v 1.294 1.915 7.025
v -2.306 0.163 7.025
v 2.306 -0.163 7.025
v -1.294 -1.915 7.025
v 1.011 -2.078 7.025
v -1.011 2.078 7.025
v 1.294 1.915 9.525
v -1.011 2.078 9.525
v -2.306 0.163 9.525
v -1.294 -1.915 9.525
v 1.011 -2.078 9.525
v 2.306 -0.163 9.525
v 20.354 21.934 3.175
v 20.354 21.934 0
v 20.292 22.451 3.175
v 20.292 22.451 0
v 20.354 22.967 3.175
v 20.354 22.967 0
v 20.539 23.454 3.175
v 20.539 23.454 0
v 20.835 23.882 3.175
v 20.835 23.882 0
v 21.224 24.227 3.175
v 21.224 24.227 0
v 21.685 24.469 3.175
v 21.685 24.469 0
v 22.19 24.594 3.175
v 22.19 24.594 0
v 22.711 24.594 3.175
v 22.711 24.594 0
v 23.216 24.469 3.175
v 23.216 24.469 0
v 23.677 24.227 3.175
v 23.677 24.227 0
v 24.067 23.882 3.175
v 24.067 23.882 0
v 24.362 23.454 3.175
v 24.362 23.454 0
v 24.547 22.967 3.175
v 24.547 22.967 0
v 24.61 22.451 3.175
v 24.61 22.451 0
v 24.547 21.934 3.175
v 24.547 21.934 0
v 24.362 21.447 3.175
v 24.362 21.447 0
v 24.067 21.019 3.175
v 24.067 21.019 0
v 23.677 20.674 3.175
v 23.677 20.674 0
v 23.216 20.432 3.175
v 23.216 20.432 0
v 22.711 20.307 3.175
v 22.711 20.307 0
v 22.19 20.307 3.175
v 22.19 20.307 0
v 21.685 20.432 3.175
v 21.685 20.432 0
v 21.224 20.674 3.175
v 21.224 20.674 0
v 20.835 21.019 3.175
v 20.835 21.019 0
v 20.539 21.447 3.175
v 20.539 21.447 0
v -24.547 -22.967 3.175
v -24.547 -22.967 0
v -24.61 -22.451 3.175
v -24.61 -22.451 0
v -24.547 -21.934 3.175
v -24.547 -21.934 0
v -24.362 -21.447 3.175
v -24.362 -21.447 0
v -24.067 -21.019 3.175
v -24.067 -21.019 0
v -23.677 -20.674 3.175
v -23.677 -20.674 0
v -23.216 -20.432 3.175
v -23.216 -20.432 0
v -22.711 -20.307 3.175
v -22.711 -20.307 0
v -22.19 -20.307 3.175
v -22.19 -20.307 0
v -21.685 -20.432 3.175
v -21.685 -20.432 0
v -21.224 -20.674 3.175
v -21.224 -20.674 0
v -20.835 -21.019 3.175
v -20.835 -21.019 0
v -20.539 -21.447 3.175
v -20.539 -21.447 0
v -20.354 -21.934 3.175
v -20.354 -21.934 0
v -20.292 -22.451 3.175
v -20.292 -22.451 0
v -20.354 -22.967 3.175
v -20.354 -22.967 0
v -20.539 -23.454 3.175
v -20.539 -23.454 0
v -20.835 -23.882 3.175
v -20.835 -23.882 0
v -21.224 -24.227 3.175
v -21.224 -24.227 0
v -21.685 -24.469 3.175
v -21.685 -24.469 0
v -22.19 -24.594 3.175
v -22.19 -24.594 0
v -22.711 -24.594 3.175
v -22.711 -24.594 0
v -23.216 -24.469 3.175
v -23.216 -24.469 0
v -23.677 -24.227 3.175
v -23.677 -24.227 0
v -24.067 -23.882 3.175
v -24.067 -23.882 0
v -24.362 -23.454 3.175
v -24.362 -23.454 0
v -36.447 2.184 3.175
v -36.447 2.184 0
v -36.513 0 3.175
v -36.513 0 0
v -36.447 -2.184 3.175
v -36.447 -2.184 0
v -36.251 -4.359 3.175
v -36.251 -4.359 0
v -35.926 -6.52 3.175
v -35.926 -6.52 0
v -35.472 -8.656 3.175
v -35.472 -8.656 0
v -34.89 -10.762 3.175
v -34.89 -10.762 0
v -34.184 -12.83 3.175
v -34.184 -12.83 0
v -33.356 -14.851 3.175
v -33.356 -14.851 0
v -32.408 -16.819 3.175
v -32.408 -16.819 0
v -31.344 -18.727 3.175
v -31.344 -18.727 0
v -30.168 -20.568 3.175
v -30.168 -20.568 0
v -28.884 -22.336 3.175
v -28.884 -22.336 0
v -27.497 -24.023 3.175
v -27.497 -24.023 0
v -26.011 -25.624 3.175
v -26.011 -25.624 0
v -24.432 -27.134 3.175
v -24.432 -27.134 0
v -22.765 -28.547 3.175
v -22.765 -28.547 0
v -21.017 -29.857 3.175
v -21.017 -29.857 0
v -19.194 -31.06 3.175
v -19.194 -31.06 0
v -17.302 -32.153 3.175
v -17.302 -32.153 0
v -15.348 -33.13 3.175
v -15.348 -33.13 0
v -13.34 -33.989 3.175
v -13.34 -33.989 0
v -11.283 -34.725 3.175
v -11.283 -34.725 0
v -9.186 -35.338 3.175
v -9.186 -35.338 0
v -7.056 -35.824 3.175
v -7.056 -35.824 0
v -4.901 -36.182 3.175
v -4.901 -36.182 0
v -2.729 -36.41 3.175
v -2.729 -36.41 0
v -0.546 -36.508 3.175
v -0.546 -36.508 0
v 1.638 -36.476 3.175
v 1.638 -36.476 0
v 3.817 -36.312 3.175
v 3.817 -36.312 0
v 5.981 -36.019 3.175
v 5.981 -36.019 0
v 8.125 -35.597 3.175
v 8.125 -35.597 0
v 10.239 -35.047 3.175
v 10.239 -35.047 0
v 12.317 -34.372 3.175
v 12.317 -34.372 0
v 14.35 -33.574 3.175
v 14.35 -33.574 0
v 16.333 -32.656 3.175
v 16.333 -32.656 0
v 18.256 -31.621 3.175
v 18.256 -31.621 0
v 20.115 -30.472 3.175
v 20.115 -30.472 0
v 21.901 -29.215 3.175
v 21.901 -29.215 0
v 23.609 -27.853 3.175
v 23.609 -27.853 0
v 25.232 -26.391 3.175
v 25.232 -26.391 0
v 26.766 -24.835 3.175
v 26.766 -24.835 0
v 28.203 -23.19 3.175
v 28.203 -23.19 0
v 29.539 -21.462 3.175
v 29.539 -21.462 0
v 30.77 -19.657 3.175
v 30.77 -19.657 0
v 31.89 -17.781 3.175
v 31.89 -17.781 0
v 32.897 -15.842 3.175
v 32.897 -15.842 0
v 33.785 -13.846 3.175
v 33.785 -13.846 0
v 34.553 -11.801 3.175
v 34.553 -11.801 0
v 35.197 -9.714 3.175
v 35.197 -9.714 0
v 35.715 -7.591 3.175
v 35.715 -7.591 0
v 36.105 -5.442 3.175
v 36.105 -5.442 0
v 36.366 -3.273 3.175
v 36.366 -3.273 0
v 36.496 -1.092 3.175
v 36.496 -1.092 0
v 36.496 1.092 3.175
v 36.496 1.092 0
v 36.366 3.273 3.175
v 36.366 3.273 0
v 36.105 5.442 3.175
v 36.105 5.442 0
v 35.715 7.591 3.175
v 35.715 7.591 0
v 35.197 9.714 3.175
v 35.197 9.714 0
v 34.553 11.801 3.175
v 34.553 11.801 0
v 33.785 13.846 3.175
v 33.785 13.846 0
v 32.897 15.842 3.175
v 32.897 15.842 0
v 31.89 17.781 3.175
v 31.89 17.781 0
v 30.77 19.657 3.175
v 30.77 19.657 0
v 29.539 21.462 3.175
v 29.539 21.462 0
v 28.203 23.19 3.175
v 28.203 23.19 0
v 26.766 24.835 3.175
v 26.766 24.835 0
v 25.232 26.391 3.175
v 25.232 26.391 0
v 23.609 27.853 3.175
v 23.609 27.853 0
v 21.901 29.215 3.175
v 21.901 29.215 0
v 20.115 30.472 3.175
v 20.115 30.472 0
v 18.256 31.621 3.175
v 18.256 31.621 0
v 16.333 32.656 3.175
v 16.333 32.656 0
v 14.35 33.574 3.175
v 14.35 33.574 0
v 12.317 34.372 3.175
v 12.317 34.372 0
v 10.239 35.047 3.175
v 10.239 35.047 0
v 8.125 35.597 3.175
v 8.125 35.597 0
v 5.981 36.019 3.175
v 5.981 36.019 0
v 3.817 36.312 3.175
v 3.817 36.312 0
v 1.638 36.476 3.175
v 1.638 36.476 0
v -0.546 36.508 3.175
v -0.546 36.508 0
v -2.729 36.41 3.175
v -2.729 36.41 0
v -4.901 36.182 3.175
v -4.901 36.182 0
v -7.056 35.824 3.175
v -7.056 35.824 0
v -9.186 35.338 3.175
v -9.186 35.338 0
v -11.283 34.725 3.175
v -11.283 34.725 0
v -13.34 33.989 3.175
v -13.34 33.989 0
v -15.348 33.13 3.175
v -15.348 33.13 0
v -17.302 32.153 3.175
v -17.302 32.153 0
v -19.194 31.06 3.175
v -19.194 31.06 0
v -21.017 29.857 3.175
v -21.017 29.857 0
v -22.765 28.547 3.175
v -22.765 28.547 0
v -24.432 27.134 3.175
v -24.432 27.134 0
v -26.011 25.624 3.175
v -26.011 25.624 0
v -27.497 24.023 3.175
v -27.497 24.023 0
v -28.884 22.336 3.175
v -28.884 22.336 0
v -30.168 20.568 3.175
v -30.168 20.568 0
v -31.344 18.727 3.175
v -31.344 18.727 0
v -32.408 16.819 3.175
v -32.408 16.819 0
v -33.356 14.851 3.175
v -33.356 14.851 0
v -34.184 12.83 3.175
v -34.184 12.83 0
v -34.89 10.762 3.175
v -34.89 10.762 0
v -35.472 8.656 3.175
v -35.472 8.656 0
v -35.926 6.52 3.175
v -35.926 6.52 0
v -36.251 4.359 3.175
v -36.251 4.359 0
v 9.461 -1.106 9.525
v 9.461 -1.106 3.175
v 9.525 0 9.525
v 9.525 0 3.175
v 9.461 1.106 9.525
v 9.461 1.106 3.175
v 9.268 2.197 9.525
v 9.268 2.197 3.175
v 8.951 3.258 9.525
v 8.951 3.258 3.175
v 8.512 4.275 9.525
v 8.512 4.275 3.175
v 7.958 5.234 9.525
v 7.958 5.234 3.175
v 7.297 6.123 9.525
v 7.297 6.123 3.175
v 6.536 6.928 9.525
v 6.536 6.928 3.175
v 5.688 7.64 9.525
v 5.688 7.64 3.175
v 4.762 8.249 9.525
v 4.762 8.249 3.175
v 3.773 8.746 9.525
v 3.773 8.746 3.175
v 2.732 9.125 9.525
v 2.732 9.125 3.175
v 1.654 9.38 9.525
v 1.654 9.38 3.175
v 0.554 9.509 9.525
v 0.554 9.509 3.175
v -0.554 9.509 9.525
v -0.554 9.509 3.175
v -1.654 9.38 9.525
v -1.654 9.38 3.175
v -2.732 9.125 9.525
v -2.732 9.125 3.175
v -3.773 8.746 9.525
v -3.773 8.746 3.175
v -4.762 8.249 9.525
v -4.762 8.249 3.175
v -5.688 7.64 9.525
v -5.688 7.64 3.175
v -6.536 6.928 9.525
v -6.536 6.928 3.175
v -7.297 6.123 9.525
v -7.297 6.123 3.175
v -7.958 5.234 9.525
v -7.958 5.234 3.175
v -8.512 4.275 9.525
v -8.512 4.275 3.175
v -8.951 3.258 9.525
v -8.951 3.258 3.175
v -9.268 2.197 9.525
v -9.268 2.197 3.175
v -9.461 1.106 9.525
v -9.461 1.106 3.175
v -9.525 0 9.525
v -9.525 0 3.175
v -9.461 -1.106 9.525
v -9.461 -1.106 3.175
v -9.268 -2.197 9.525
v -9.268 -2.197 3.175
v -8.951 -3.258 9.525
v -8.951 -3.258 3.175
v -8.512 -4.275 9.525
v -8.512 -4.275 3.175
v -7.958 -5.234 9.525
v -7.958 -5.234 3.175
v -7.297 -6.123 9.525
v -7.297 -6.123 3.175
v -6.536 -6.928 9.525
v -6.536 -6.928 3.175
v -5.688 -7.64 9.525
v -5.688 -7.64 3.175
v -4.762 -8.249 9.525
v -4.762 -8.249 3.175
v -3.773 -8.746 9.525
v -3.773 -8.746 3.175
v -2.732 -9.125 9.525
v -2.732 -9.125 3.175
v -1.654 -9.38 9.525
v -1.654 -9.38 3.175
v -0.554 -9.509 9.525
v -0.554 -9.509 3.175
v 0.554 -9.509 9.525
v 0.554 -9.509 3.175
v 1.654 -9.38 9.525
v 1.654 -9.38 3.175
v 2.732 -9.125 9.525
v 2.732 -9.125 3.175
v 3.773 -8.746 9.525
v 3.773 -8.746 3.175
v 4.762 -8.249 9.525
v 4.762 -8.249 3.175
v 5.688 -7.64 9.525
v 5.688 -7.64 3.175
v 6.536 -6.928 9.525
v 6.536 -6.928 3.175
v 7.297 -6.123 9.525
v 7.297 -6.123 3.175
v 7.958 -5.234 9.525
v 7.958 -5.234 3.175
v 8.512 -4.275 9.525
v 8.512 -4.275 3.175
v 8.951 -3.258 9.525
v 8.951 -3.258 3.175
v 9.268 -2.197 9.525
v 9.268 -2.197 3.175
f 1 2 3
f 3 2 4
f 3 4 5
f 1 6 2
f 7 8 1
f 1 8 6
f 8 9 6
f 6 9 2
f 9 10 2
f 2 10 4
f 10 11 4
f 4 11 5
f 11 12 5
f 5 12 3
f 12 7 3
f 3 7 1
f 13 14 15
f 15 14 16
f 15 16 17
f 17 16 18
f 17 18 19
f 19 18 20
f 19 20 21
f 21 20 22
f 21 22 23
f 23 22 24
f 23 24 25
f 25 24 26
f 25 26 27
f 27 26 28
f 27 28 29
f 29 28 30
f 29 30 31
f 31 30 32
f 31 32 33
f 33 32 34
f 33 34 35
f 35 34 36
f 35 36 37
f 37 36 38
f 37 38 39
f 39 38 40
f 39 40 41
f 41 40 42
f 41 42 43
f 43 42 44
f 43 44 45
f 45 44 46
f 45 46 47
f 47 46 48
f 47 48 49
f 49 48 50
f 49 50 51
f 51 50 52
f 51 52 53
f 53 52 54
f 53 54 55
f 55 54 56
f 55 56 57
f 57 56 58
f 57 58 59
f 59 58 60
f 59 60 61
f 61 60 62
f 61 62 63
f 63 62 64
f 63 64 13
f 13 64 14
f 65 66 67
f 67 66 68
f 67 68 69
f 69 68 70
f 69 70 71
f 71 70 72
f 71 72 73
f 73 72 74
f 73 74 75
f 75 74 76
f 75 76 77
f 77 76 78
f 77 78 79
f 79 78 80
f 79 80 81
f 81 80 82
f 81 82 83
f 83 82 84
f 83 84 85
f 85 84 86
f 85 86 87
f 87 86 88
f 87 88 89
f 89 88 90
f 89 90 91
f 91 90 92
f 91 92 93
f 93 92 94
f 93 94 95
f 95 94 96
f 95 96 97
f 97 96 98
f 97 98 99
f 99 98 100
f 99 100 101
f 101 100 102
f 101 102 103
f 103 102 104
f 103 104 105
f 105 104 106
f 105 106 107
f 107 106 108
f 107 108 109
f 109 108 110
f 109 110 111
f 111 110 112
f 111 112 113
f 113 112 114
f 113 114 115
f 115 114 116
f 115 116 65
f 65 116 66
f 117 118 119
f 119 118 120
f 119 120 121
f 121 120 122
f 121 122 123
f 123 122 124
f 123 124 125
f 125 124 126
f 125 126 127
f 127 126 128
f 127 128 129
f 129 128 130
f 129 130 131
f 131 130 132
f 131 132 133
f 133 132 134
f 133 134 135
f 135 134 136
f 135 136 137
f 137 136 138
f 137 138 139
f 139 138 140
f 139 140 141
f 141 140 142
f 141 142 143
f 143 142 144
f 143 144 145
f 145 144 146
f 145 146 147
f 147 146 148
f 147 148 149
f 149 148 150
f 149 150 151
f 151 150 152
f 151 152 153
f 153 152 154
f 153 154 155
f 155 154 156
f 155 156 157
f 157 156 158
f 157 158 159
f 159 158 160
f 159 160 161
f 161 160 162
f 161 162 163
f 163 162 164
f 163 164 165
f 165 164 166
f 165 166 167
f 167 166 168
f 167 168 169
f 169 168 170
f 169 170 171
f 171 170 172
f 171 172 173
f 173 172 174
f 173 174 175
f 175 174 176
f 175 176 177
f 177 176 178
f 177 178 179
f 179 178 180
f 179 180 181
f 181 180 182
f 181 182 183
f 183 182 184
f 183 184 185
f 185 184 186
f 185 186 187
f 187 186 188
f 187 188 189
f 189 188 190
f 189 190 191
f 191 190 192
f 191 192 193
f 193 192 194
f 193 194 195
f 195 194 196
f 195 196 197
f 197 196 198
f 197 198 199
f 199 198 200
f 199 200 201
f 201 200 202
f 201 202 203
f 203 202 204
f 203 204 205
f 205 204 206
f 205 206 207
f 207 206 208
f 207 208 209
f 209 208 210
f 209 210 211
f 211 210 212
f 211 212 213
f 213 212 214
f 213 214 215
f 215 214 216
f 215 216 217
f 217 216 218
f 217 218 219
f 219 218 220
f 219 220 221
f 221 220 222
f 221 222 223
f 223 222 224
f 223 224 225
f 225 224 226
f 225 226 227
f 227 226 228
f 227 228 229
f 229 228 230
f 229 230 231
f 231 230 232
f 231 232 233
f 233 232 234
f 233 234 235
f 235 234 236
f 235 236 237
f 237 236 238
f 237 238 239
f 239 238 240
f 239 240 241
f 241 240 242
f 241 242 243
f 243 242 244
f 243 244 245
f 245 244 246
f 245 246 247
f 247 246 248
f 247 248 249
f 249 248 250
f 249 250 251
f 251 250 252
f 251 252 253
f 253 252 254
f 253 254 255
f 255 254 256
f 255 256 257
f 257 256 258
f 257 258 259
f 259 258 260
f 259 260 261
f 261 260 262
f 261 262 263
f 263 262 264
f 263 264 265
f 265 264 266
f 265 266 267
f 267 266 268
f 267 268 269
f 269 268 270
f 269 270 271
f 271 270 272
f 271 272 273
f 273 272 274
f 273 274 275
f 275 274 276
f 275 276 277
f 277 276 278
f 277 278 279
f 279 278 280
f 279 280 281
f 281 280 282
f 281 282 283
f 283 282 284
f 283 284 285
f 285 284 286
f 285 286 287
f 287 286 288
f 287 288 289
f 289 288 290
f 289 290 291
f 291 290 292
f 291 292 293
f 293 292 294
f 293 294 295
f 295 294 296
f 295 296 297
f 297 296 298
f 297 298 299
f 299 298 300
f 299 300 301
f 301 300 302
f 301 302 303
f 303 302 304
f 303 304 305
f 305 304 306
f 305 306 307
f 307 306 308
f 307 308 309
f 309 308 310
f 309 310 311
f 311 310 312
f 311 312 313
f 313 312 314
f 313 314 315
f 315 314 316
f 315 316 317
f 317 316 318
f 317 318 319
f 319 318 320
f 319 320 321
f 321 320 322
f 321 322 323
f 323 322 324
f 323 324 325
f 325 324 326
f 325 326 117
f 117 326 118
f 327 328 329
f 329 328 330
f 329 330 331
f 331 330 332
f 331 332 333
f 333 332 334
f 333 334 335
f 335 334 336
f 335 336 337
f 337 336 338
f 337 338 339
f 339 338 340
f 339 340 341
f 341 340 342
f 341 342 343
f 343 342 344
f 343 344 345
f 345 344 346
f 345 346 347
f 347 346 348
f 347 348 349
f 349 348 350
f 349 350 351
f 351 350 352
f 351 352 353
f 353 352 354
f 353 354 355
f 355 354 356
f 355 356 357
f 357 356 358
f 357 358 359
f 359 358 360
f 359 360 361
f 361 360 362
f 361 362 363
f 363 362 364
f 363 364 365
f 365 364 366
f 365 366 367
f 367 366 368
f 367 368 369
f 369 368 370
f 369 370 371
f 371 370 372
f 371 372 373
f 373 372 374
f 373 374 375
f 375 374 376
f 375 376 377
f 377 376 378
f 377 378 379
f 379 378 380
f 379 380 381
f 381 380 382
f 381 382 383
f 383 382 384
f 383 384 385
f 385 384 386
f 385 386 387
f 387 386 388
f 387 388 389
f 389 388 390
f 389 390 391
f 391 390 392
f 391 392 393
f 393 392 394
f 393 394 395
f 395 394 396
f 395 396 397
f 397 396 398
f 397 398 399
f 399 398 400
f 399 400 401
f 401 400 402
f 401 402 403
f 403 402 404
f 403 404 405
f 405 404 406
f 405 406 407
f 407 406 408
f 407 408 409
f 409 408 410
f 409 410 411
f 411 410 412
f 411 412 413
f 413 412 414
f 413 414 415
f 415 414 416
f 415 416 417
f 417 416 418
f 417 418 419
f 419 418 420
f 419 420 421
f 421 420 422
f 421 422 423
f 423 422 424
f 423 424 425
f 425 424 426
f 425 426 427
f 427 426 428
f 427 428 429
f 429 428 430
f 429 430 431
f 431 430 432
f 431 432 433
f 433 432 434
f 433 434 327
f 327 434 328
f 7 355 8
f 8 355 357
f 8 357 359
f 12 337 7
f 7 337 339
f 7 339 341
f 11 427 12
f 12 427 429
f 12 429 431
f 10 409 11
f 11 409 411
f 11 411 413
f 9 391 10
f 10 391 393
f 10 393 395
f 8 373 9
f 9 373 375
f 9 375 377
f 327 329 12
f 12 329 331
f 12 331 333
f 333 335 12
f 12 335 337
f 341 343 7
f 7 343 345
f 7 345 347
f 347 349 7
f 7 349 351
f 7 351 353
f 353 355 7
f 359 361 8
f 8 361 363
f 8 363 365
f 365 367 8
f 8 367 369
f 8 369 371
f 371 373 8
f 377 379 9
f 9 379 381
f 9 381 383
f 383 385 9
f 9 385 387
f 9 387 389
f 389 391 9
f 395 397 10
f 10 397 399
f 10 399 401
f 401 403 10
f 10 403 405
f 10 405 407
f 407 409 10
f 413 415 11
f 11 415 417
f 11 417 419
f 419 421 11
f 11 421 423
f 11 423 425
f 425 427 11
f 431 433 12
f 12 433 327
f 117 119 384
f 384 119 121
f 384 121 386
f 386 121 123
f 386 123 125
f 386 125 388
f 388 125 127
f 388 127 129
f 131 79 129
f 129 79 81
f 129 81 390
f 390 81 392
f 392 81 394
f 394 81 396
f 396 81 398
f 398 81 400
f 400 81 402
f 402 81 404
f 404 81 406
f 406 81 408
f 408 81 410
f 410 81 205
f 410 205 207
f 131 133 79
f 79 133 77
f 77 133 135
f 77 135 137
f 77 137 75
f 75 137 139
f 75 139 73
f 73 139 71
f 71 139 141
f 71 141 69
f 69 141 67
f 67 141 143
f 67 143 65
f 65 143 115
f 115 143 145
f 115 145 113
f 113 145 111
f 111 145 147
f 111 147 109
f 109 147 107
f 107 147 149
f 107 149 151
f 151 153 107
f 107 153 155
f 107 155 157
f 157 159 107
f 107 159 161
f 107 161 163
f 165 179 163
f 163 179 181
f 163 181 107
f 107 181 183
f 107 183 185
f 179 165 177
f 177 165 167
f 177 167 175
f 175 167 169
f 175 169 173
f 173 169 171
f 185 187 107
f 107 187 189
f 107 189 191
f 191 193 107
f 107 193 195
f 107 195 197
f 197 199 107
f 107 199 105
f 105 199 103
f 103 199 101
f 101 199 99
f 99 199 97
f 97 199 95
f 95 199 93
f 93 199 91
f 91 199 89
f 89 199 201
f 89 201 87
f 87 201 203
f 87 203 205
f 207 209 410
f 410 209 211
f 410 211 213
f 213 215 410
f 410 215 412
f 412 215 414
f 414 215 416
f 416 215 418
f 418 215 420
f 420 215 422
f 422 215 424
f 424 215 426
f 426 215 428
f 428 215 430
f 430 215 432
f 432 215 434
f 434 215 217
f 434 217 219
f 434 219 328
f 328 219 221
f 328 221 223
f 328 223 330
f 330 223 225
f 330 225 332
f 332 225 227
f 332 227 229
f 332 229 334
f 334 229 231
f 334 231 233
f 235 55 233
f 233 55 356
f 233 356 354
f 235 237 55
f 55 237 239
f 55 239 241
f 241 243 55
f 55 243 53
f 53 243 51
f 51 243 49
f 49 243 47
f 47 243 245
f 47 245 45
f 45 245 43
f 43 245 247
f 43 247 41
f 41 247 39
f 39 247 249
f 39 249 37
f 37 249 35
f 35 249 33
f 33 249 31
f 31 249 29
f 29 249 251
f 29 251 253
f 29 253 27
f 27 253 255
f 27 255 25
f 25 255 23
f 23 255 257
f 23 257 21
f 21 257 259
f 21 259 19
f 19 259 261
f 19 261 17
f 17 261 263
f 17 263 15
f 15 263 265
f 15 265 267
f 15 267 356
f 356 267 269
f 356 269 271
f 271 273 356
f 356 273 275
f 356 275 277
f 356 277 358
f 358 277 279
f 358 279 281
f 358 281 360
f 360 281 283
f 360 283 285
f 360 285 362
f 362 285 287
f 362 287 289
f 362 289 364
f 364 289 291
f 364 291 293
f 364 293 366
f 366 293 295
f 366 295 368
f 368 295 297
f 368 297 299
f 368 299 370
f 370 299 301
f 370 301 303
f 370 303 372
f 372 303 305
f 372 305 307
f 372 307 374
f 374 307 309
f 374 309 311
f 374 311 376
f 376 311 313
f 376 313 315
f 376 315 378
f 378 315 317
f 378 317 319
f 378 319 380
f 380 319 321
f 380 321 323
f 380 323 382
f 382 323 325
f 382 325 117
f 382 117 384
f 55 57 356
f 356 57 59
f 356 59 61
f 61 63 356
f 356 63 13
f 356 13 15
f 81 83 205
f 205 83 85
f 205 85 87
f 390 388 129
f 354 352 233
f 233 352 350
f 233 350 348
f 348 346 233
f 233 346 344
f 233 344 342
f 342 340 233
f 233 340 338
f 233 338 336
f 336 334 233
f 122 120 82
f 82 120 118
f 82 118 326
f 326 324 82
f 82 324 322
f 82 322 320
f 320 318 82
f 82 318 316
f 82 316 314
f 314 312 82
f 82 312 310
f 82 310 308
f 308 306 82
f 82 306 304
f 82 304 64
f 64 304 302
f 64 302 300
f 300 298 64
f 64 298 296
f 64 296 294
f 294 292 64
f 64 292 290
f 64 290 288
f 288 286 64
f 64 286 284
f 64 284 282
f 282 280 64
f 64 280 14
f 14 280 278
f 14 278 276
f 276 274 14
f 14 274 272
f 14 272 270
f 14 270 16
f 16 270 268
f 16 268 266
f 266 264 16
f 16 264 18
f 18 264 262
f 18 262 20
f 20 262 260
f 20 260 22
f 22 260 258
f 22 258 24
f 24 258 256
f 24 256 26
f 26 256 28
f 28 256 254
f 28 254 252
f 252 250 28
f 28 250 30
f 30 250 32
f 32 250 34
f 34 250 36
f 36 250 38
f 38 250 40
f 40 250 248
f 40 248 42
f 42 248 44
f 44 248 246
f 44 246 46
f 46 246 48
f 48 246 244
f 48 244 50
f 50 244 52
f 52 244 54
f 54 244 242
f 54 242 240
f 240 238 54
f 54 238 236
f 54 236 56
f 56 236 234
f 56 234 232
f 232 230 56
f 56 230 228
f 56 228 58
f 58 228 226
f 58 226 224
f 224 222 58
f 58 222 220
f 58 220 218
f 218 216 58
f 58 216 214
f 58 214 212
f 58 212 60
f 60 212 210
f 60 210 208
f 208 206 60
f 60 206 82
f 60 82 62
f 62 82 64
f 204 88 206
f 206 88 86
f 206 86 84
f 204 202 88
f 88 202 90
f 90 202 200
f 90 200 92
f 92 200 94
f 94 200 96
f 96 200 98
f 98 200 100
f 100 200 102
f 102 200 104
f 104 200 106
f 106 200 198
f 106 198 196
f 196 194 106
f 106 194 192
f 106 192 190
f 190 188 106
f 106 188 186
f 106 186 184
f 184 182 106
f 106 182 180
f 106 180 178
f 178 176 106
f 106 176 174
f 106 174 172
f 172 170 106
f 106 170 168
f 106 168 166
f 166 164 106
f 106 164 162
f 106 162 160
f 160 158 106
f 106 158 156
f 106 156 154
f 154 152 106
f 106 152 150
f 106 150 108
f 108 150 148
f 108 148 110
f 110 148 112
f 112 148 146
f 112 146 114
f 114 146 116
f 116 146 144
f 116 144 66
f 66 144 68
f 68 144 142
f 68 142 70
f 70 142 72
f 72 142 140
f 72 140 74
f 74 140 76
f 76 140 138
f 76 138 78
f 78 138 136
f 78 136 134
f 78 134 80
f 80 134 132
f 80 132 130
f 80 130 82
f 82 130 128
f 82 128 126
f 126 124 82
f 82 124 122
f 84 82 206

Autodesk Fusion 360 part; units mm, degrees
sketch "Sketch1" plane through (0, 0, 0) normal (0, 0, 1) x (1, 0, 0)
  circle A0 centre (0, 0) radius 18.2563
  line L0 (0, 0) -> (18.2563, 0) construction
  circle A1 centre (22.4506, 22.4506) radius 2.159
  circle A2 centre (-22.4506, -22.4506) radius 2.159
  circle A3 centre (0, 0) radius 9.525
  circle A4 centre (0, 0) radius 36.5125
  circle A5 centre (0, 0) radius 31.75
  line L1 (0, 0) -> (22.4506, 22.4506)
  line L2 (0, 0) -> (21.082, 0) construction
  line L3 (0, 0) -> (-22.4506, -22.4506)
  line L4 (0, 0) -> (21.082, 0) construction
  dimension "d1" = 36.5125
  dimension "d16" = 4.318
  dimension "d18" = 4.318
  dimension "d24" = 19.05
  dimension "d33" = 73.025
  dimension "d34" = 63.5
  dimension "d35" = 45
  dimension "d36" = 135
extrude "Extrude2" add sketch "Sketch1" along normal blind 3.175 contours A0 A3 L1 L3 | A0 A3 L1 L3 | A3 L1 L3 | A3 L1 L3
sketch "Sketch2" plane through (0, 0, 3.175) normal (0, 0, 1) x (-1, 0, 0)
  circle A0 centre (0, 0) radius 18.2563
  circle A1 centre (0, 0) radius 9.525
  dimension "d27" = 19.05
extrude "Extrude3" add sketch "Sketch2" along normal blind 6.35 contours A1
sketch "Sketch3" plane through (0, 0, 9.525) normal (0, 0, 1) x (-1, 0, 0)
  circle A0 centre (0, 0) radius 9.525
  line L0 (-1.2943, -1.9151) -> (1.0113, -2.0784)
  line L1 (1.0113, -2.0784) -> (2.3056, -0.1633)
  line L2 (2.3056, -0.1633) -> (1.2943, 1.9151)
  line L3 (1.2943, 1.9151) -> (-1.0113, 2.0784)
  line L4 (-1.0113, 2.0784) -> (-2.3056, 0.1633)
  line L5 (-2.3056, 0.1633) -> (-1.2943, -1.9151)
  dimension "d42" = 2.3114
extrude "Extrude7" add sketch "Sketch1" along normal blind 3.175 contours A0 A1 A2 A5 L1 L3 | A0 A1 A2 A5 L1 L3 | A4
extrude "Extrude8" cut sketch "Sketch3" against normal blind 2.3813 contours L0 L1 L2 L3 L4 L5
extrude "Extrude6" add sketch "Sketch1" along normal blind 3.175 contours A0 A1 A2 A5 L1 L3 | A0 A1 A2 A5 L1 L3 | A4
extrude "Extrude4" cut sketch "Sketch3" against normal blind 2.5 contours L0 L1 L2 L3 L4 L5
extrude "Extrude5" add sketch "Sketch1" along normal blind 3.175 contours A0 A1 A2 A5 L1 L3 | A0 A1 A2 A5 L1 L3 | A4
equation "d1 = ( 23 / 16 ) * 1 in"
equation "d45 = ( -3 / 32 ) * 1 in"
